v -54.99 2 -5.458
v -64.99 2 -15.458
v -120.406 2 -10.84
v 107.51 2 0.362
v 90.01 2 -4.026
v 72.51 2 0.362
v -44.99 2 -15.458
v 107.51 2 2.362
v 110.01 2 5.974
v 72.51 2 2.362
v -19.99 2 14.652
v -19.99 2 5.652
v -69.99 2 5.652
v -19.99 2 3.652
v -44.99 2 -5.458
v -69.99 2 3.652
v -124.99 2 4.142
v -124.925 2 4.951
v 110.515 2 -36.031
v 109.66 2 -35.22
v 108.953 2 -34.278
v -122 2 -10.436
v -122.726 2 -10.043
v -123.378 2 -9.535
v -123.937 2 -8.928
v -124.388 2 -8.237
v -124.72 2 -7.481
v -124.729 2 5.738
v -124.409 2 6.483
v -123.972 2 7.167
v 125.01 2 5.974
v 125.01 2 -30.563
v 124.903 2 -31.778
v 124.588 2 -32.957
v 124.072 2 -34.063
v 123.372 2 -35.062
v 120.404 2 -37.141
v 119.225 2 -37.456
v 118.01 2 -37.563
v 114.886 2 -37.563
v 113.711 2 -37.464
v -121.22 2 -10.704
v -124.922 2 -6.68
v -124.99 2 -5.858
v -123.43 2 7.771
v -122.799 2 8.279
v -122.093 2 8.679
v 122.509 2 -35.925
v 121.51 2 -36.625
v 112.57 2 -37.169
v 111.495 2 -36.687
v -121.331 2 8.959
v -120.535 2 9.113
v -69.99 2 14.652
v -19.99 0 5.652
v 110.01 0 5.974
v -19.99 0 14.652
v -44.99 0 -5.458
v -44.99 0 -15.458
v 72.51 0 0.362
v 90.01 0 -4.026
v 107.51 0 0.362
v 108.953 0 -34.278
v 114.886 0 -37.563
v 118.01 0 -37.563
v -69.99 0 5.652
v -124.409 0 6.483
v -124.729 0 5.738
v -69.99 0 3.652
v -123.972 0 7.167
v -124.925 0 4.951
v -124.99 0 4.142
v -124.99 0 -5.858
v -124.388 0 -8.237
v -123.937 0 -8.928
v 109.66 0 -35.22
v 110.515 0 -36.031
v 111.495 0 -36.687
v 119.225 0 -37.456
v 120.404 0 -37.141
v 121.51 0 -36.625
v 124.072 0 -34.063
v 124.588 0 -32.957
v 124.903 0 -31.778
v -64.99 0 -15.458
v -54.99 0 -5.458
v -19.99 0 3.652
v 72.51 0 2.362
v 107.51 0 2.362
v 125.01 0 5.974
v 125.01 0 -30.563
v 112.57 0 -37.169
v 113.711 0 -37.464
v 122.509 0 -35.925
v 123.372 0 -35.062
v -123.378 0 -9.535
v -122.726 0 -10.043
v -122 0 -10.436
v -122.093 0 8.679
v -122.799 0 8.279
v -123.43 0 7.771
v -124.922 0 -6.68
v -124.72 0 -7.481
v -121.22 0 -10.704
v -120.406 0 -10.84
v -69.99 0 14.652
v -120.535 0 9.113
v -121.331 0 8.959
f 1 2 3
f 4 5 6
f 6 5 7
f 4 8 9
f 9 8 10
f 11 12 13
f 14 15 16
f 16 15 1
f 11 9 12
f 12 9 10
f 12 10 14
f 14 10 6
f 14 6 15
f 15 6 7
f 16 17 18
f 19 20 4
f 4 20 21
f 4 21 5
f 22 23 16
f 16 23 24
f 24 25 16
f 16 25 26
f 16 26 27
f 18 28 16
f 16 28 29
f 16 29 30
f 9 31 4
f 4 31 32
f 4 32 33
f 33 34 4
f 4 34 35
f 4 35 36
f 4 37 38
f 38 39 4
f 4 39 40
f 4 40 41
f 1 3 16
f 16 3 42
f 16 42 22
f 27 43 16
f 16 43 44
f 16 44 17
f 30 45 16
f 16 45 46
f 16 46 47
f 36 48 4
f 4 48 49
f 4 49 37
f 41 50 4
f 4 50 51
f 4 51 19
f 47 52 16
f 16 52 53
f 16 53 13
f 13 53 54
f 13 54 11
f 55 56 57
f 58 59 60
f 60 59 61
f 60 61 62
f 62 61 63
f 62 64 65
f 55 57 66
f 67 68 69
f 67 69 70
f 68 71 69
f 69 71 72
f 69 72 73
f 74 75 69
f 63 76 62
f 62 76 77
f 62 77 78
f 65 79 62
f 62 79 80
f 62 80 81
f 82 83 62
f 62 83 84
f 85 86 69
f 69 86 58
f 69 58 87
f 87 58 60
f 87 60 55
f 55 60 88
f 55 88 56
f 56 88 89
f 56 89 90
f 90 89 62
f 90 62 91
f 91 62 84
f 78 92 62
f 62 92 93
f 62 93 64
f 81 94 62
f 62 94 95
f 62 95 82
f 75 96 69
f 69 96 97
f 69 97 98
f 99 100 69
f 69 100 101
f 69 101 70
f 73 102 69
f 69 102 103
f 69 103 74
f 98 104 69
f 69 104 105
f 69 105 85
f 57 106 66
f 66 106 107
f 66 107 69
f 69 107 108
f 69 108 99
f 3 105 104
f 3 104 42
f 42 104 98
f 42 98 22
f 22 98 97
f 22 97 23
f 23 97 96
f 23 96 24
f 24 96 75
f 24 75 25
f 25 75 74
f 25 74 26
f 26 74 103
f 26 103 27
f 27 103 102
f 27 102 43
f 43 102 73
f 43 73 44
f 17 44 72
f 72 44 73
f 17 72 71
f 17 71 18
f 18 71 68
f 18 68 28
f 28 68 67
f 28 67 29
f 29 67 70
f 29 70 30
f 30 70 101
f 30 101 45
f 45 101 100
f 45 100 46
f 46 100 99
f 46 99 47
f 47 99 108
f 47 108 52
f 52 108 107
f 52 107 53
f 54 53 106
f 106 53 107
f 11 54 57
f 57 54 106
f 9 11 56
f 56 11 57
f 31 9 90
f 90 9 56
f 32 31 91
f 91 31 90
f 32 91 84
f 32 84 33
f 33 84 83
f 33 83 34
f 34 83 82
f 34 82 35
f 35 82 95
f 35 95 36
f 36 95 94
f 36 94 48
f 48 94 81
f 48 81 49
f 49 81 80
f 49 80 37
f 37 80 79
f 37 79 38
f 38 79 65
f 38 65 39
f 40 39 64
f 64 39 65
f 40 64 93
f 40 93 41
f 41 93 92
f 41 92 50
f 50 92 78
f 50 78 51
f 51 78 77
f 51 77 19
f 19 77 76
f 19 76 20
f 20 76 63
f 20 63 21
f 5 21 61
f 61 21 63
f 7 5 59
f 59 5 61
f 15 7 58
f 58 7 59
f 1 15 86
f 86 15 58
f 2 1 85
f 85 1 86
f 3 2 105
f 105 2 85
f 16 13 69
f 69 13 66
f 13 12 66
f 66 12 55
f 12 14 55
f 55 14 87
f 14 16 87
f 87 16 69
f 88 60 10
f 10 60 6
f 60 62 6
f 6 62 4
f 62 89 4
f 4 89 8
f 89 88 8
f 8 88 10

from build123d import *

# Parameters (mm, degrees)
SKETCH1_W           = 50
SKETCH1_H           = 2
BOSS_EXTRUDE1_DEPTH = 2
SKETCH6_W           = 35
SKETCH6_H           = 2
CUT_EXTRUDE1_DEPTH  = 2


with BuildPart() as part:
    # Sketch1 → Boss-Extrude1 (new body)
    with BuildSketch(Plane(origin=(0, 0, 0), x_dir=(1, 0, 0), z_dir=(0, 1, 0))):
        with BuildLine():
            Line((-120.405540847, 10.840369707), (-64.990311195, 15.45833074))
            Line((-64.990311195, 15.45833074), (-54.990311195, 5.45833074))
            Line((-54.990311195, 5.45833074), (-44.990311195, 5.45833074))
            Line((-44.990311195, 5.45833074), (-44.990311195, 15.45833074))
            Line((-44.990311195, 15.45833074), (90.009688805, 4.0256009))
            Line((90.009688805, 4.0256009), (108.952709235, 34.277770331))
            ThreePointArc((108.952709235, 34.277770331), (111.494770003, 36.686709078), (114.88557379, 37.562784709))
            Line((114.88557379, 37.562784709), (118.009688805, 37.562784709))
            ThreePointArc((118.009688805, 37.562784709), (122.959436273, 35.512532177), (125.009688805, 30.562784709))
            Line((125.009688805, 30.562784709), (125.009688805, 15.562784709))
            Line((125.009688805, 15.562784709), (125.009688805, -5.9743991))
            Line((125.009688805, -5.9743991), (110.009688805, -5.9743991))
            Line((110.009688805, -5.9743991), (-19.990311195, -14.651713609))
            Line((-19.990311195, -14.651713609), (-69.990311195, -14.651713609))
            Line((-69.990311195, -14.651713609), (-120.534992278, -9.112602605))
            ThreePointArc((-120.534992278, -9.112602605), (-123.713441962, -7.479767666), (-124.990311195, -4.142358897))
            Line((-124.990311195, -4.142358897), (-124.990311195, 5.857641103))
            ThreePointArc((-124.990311195, 5.857641103), (-123.669723394, 9.243187717), (-120.405540847, 10.840369707))
        make_face()
        with Locations((-44.990311195, -4.651713609)):
            Rectangle(SKETCH1_W, SKETCH1_H, mode=Mode.SUBTRACT)
    extrude(amount=BOSS_EXTRUDE1_DEPTH)

    # Sketch6 → Cut-Extrude1 (cut)
    with BuildSketch(Plane(origin=(0, 2, 0), x_dir=(1, 0, 0), z_dir=(0, 1, 0))):
        with Locations((90.009688805, -1.362235571)):
            Rectangle(SKETCH6_W, SKETCH6_H)
    extrude(amount=-CUT_EXTRUDE1_DEPTH, mode=Mode.SUBTRACT)


solid = part.part
